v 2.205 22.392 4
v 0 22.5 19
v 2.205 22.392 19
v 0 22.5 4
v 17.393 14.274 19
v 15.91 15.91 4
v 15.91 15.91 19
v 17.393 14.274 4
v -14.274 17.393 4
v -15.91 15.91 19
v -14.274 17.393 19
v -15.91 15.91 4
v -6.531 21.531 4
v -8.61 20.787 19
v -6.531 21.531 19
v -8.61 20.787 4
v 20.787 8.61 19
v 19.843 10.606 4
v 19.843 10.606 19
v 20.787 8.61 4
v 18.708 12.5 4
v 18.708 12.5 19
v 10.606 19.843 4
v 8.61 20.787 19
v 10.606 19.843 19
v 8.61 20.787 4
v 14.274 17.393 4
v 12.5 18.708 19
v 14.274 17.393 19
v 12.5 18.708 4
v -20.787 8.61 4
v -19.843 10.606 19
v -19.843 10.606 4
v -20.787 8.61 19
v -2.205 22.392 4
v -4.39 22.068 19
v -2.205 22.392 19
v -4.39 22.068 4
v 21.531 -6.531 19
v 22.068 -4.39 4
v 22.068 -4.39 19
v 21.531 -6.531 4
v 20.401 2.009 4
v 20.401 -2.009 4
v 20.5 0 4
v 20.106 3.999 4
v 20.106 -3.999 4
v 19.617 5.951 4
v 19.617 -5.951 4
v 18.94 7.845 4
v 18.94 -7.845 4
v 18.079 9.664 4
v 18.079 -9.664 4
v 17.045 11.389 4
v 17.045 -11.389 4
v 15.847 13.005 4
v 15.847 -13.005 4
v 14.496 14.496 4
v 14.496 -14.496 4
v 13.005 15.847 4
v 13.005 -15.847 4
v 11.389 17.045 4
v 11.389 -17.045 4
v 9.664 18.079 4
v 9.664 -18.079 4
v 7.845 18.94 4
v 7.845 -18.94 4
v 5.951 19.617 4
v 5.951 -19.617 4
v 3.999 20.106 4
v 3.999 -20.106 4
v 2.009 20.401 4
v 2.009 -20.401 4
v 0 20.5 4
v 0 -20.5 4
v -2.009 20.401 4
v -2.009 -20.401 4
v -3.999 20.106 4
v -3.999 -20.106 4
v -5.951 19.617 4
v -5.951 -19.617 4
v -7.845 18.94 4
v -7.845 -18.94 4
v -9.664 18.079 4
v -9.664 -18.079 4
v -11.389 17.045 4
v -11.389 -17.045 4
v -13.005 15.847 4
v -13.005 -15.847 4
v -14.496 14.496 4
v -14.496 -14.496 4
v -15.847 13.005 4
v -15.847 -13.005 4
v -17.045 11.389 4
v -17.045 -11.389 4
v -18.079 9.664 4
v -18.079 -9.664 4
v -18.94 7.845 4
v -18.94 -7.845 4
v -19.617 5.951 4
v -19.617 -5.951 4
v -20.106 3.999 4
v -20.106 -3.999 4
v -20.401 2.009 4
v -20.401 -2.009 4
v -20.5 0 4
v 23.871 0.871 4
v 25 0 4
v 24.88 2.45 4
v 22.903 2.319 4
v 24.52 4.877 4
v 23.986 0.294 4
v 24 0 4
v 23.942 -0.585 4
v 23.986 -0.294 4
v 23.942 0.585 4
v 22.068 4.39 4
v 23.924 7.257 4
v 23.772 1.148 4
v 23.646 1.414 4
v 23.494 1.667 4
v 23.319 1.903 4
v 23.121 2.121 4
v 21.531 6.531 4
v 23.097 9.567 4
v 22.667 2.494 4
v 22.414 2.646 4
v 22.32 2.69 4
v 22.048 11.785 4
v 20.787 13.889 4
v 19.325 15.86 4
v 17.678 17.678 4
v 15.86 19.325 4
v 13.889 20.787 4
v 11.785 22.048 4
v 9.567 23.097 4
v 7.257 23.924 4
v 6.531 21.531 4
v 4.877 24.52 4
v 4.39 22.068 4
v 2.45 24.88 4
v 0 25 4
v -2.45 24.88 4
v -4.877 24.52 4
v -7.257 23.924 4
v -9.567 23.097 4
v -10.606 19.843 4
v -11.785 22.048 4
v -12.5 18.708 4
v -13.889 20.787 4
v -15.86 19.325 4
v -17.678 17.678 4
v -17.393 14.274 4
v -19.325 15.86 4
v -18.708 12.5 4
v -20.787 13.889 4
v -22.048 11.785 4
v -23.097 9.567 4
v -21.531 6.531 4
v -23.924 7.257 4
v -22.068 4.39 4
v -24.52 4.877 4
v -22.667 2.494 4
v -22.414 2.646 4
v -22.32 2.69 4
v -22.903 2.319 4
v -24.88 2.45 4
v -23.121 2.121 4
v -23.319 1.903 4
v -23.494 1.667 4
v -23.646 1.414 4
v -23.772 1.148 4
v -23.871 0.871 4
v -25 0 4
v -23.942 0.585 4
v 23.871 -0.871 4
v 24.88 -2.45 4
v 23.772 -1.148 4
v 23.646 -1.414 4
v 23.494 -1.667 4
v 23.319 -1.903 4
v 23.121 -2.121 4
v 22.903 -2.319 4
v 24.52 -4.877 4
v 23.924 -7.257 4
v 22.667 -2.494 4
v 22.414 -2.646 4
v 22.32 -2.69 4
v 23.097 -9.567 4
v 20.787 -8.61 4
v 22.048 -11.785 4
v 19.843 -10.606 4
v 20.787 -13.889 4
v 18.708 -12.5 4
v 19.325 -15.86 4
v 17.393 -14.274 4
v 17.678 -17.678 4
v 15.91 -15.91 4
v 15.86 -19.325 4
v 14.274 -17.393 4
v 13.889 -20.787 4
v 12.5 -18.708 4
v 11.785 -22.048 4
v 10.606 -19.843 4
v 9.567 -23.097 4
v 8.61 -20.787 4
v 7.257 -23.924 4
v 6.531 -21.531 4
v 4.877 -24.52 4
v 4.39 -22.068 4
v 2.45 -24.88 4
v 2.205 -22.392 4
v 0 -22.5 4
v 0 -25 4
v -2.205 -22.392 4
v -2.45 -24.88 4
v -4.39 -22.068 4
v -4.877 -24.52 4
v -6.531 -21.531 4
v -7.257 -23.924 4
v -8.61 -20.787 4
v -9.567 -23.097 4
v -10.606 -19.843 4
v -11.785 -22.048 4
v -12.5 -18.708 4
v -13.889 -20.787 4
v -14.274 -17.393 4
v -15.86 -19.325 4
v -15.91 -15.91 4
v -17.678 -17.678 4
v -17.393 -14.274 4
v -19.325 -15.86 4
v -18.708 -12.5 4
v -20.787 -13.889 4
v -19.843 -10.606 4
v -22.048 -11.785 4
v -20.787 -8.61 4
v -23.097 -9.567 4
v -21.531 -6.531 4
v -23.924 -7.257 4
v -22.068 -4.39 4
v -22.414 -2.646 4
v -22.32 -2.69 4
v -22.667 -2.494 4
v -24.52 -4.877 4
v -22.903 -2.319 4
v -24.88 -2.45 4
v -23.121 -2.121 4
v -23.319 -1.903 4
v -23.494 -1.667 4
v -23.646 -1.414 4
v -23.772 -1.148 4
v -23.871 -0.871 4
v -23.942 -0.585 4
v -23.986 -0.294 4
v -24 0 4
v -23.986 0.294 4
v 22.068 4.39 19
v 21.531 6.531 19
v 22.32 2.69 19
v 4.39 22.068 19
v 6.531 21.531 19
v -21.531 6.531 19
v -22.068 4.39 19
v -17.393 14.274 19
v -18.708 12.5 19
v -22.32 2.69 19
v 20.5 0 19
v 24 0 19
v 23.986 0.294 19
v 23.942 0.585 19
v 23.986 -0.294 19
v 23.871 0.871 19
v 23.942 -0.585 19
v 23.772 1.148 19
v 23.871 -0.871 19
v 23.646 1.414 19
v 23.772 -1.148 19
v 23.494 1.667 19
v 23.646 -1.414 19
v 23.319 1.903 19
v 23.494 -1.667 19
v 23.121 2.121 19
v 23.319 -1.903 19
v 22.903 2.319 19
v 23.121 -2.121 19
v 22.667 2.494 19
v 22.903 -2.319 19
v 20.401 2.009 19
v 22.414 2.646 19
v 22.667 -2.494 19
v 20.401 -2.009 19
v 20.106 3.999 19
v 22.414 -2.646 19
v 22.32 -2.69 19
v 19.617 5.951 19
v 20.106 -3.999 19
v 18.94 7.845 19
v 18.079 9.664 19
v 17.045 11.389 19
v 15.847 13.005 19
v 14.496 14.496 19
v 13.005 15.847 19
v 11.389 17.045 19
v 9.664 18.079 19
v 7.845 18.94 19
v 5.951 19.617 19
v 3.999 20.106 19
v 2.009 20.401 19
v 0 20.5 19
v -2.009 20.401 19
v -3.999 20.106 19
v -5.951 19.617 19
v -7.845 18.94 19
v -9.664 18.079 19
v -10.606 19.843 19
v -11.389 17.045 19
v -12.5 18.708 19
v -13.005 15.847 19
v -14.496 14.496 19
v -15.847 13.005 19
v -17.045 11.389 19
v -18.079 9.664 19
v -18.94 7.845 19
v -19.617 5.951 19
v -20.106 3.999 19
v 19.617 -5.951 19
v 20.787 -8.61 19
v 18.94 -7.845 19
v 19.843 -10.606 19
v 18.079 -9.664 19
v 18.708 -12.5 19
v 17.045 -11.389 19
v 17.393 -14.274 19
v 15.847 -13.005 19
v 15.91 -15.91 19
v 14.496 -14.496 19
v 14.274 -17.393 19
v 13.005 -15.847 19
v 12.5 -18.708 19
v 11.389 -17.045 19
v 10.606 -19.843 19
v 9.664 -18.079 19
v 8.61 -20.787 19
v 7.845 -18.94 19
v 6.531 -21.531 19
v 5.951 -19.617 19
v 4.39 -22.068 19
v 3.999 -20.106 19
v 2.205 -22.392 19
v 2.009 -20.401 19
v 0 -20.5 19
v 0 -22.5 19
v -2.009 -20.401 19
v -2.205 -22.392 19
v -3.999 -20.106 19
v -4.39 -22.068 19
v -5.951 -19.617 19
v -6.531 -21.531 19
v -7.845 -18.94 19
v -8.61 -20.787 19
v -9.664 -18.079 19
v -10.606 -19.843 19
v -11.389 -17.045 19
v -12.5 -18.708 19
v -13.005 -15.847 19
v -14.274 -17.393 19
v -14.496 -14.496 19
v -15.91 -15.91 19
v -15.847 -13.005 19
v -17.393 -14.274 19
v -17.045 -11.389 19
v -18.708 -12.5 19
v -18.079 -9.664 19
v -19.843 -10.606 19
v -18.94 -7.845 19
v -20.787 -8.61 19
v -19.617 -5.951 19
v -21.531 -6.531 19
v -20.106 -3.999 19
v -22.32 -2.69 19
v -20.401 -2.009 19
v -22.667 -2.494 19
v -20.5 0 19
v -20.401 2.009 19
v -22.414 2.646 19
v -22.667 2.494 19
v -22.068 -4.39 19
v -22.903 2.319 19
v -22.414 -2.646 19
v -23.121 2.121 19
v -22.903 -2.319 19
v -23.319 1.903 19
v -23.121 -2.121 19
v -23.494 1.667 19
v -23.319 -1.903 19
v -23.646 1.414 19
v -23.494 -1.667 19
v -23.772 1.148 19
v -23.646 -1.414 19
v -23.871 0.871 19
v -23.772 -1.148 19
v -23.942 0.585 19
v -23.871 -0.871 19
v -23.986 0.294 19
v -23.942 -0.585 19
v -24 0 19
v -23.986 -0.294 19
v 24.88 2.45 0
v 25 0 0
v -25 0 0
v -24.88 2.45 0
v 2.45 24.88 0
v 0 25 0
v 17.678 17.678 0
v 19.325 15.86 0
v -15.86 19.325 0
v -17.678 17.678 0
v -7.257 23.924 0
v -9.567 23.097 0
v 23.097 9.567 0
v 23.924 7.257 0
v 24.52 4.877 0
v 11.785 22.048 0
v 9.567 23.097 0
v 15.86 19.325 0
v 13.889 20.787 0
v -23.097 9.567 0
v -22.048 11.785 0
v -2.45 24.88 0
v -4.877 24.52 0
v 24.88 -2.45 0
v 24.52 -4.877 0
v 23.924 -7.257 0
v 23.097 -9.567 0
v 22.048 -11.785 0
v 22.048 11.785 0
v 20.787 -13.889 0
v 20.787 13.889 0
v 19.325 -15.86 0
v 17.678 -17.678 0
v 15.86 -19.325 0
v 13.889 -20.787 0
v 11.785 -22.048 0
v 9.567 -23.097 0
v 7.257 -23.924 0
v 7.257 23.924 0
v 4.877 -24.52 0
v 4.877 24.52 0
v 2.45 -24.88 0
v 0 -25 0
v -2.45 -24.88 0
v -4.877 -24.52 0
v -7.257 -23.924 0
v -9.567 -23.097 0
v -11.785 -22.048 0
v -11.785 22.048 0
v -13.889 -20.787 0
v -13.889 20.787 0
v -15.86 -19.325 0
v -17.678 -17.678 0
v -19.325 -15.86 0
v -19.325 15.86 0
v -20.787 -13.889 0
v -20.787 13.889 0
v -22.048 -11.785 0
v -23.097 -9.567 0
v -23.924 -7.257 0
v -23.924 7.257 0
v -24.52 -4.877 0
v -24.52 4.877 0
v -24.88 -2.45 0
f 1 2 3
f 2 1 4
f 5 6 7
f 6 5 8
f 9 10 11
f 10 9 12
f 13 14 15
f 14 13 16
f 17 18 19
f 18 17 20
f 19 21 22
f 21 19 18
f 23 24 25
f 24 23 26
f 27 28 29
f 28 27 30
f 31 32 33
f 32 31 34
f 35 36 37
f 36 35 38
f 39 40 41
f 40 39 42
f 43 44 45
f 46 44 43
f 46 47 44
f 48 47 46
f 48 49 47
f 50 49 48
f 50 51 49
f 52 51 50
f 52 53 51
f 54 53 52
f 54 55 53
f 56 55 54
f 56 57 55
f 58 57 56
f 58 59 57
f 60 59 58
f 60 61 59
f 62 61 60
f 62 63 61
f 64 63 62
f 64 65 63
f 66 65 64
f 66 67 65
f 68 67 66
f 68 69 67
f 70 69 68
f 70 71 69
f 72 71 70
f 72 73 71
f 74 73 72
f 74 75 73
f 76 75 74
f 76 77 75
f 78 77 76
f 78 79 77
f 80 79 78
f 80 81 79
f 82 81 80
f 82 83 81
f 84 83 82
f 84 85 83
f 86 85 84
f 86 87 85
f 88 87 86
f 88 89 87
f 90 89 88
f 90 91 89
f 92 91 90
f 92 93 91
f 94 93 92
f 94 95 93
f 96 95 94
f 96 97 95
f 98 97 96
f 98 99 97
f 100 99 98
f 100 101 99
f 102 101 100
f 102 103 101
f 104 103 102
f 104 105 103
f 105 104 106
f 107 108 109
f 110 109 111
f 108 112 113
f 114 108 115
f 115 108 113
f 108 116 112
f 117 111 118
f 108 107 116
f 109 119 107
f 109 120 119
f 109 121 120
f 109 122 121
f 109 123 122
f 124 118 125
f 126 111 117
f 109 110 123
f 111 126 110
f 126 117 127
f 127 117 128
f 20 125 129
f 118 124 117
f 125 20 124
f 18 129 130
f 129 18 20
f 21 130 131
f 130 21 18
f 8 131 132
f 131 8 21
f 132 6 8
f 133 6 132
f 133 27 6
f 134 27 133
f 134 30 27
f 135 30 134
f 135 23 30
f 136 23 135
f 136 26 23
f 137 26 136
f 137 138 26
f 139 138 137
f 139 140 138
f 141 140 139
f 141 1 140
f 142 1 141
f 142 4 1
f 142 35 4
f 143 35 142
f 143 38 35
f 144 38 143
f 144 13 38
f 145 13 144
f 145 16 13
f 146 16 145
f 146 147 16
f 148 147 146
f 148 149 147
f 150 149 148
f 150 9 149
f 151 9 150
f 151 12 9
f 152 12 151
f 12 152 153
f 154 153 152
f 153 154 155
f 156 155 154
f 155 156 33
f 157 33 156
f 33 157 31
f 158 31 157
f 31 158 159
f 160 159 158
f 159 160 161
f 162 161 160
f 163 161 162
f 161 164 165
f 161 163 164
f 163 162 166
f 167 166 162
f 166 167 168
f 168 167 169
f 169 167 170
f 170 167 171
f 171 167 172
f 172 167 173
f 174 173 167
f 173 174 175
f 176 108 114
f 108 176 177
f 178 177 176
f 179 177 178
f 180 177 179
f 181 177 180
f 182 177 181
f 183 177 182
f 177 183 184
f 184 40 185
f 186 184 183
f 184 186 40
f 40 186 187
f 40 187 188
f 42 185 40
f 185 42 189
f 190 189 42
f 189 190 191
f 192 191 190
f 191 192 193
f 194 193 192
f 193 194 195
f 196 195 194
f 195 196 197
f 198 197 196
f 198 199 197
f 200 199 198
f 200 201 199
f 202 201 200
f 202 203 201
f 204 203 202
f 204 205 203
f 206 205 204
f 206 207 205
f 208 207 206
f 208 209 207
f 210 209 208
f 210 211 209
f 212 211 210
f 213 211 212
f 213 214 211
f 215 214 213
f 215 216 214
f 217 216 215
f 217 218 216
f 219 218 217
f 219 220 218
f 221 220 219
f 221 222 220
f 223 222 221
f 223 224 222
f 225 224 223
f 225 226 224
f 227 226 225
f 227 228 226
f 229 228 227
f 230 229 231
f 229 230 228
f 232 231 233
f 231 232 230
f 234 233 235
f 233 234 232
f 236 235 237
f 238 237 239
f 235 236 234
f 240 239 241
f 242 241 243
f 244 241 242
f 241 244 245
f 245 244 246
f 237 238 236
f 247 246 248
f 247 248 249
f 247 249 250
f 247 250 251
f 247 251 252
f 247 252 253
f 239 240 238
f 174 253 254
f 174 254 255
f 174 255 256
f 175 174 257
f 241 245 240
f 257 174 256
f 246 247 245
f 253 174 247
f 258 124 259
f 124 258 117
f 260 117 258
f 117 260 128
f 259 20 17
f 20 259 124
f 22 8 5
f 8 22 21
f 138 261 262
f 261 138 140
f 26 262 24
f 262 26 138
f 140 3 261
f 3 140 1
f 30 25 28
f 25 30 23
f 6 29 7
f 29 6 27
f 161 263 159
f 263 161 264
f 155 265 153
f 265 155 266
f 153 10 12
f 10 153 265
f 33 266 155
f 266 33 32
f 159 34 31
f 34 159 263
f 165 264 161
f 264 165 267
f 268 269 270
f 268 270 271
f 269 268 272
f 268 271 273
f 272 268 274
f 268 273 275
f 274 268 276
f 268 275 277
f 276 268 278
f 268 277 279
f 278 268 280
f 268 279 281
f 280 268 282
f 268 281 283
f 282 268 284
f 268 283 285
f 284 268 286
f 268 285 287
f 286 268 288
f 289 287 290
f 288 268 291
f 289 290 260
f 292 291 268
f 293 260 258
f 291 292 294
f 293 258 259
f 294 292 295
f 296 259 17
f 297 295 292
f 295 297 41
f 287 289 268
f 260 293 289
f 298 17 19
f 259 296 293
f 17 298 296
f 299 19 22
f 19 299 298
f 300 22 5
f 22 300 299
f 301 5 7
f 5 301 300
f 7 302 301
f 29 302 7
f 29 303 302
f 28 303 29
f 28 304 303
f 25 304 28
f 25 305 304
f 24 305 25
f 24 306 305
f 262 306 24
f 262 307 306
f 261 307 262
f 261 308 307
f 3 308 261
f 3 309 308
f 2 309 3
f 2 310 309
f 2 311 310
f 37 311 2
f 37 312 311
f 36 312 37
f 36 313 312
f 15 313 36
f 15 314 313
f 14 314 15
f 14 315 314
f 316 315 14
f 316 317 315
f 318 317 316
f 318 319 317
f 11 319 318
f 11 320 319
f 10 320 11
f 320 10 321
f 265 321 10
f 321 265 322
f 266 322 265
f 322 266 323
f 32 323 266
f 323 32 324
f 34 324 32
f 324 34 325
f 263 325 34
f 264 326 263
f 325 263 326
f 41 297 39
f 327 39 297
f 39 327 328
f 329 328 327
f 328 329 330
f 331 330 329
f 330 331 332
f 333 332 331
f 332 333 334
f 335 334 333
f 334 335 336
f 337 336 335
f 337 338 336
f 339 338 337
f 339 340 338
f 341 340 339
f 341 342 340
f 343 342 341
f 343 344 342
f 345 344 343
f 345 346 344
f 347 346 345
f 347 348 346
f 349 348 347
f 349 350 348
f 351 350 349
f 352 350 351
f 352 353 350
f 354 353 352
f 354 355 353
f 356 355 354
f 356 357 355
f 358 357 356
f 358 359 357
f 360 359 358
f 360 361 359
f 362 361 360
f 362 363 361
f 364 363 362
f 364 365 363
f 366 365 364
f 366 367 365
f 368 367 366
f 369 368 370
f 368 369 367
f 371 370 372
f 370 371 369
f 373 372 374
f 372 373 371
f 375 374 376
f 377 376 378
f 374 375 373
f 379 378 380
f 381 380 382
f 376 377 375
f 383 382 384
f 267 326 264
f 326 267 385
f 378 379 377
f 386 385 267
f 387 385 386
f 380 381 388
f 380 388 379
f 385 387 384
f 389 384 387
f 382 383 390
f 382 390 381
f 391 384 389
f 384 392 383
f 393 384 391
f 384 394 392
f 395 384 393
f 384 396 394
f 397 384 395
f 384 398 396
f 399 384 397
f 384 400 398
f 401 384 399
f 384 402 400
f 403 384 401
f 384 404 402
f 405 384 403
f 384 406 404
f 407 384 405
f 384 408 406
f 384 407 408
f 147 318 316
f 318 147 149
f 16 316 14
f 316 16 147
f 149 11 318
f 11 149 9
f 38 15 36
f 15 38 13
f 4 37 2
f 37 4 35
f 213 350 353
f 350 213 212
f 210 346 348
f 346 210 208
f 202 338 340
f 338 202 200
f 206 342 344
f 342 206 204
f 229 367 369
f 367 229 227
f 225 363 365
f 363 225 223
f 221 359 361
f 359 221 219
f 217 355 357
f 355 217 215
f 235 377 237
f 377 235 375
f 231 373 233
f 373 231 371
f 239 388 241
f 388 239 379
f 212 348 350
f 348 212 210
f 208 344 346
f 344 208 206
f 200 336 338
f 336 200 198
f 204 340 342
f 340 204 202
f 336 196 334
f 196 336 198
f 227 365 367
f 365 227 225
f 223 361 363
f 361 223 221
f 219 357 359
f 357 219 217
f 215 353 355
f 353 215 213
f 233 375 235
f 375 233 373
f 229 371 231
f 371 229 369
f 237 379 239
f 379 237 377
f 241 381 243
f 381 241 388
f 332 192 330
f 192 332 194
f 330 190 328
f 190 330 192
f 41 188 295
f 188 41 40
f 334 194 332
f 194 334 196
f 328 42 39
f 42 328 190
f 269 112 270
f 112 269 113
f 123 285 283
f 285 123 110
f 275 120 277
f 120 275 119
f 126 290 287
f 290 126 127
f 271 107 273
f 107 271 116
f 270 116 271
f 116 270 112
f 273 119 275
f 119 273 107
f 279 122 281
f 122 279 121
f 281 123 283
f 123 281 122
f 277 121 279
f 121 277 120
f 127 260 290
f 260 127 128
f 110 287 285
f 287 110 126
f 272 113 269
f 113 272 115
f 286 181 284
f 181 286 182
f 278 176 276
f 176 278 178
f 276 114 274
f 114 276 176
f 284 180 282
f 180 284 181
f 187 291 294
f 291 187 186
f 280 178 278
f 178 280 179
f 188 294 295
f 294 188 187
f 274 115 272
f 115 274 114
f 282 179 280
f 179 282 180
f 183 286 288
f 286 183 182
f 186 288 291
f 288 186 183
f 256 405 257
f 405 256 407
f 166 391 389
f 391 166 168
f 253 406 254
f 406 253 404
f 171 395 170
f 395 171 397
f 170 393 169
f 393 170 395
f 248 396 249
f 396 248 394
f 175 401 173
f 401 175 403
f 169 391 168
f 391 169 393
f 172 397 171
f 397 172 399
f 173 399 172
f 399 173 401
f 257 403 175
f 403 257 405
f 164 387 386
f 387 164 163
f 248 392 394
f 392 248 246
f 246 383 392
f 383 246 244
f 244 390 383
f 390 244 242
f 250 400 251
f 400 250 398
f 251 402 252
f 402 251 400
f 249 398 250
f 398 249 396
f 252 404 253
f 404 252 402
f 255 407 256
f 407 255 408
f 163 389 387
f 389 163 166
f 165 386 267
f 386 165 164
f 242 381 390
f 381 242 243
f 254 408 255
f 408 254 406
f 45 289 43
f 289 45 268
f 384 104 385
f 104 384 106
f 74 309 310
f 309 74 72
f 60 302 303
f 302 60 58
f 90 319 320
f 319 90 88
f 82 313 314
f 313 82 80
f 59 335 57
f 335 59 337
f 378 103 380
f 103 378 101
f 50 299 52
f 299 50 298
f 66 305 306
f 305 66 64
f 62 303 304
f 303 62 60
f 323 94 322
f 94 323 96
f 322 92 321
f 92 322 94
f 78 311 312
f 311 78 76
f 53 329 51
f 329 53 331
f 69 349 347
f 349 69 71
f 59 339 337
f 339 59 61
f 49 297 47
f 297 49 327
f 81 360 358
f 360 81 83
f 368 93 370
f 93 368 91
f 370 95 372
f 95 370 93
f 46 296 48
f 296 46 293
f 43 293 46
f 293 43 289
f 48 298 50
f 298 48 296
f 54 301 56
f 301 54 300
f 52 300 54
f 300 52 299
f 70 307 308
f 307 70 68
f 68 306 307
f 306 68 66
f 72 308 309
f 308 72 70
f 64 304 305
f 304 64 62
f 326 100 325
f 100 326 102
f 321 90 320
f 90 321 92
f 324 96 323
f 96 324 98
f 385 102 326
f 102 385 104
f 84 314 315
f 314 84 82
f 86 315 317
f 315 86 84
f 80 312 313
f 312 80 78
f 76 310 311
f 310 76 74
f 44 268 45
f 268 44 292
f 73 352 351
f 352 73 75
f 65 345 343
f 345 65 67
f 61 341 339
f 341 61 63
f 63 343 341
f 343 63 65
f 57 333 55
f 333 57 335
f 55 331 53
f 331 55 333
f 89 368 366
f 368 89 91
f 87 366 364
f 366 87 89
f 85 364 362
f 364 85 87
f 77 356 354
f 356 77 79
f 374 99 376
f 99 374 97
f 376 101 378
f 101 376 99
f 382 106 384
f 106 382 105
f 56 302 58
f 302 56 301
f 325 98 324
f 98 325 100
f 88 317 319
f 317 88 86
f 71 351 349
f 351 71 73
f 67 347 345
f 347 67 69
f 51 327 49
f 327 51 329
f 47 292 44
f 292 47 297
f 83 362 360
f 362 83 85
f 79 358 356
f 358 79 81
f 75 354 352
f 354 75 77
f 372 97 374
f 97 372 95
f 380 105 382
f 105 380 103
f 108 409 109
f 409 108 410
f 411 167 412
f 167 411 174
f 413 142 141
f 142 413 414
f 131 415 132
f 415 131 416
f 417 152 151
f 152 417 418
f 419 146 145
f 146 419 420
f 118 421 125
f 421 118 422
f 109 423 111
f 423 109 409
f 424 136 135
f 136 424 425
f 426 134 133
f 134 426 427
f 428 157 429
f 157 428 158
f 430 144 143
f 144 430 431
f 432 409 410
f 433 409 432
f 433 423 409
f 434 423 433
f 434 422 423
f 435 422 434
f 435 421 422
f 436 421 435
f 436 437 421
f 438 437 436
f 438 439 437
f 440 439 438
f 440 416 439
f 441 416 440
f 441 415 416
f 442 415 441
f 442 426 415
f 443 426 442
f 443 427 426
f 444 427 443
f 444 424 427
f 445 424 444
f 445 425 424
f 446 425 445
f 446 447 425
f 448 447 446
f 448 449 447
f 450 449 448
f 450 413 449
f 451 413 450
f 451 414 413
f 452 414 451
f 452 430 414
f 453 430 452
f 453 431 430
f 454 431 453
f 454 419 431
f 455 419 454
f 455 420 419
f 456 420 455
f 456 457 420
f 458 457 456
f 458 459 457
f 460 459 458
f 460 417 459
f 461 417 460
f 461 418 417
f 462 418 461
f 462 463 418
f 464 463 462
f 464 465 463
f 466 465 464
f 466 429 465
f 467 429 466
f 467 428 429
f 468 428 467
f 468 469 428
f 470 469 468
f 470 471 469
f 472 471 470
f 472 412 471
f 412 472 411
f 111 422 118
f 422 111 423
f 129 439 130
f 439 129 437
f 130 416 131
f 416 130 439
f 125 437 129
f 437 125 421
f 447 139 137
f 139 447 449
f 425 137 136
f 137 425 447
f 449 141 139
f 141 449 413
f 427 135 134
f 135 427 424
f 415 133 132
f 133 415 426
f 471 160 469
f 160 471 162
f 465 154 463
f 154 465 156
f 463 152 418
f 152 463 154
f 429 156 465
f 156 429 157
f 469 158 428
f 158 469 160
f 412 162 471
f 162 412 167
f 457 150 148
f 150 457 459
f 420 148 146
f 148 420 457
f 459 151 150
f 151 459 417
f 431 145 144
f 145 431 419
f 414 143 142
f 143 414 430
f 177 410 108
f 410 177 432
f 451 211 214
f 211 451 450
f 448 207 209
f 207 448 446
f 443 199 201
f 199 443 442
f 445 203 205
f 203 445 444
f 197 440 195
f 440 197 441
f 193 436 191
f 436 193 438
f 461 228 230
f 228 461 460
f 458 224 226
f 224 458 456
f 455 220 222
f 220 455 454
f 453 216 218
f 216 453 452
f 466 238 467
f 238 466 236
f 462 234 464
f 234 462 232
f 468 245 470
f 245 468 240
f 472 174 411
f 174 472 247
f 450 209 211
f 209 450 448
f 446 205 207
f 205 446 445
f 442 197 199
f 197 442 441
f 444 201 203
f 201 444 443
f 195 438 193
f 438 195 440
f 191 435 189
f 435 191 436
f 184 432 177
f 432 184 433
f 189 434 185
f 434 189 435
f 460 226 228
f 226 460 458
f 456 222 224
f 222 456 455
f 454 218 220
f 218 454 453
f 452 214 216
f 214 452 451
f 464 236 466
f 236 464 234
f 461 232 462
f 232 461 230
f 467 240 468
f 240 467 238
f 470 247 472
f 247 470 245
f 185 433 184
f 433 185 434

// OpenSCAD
$fn=64;
cylinder(r=25, h=4);
translate([0,0,4])
difference(){
    union(){
        cylinder(r=45/2, h=15);
        translate([45/2-1.5,0,0])
        cylinder(r=3, h=15);
        translate([-45/2+1.5,0,0])
        cylinder(r=3, h=15);
    }
    translate([0,0,-0.5])
    cylinder(r=45/2-2, h=16);
}
